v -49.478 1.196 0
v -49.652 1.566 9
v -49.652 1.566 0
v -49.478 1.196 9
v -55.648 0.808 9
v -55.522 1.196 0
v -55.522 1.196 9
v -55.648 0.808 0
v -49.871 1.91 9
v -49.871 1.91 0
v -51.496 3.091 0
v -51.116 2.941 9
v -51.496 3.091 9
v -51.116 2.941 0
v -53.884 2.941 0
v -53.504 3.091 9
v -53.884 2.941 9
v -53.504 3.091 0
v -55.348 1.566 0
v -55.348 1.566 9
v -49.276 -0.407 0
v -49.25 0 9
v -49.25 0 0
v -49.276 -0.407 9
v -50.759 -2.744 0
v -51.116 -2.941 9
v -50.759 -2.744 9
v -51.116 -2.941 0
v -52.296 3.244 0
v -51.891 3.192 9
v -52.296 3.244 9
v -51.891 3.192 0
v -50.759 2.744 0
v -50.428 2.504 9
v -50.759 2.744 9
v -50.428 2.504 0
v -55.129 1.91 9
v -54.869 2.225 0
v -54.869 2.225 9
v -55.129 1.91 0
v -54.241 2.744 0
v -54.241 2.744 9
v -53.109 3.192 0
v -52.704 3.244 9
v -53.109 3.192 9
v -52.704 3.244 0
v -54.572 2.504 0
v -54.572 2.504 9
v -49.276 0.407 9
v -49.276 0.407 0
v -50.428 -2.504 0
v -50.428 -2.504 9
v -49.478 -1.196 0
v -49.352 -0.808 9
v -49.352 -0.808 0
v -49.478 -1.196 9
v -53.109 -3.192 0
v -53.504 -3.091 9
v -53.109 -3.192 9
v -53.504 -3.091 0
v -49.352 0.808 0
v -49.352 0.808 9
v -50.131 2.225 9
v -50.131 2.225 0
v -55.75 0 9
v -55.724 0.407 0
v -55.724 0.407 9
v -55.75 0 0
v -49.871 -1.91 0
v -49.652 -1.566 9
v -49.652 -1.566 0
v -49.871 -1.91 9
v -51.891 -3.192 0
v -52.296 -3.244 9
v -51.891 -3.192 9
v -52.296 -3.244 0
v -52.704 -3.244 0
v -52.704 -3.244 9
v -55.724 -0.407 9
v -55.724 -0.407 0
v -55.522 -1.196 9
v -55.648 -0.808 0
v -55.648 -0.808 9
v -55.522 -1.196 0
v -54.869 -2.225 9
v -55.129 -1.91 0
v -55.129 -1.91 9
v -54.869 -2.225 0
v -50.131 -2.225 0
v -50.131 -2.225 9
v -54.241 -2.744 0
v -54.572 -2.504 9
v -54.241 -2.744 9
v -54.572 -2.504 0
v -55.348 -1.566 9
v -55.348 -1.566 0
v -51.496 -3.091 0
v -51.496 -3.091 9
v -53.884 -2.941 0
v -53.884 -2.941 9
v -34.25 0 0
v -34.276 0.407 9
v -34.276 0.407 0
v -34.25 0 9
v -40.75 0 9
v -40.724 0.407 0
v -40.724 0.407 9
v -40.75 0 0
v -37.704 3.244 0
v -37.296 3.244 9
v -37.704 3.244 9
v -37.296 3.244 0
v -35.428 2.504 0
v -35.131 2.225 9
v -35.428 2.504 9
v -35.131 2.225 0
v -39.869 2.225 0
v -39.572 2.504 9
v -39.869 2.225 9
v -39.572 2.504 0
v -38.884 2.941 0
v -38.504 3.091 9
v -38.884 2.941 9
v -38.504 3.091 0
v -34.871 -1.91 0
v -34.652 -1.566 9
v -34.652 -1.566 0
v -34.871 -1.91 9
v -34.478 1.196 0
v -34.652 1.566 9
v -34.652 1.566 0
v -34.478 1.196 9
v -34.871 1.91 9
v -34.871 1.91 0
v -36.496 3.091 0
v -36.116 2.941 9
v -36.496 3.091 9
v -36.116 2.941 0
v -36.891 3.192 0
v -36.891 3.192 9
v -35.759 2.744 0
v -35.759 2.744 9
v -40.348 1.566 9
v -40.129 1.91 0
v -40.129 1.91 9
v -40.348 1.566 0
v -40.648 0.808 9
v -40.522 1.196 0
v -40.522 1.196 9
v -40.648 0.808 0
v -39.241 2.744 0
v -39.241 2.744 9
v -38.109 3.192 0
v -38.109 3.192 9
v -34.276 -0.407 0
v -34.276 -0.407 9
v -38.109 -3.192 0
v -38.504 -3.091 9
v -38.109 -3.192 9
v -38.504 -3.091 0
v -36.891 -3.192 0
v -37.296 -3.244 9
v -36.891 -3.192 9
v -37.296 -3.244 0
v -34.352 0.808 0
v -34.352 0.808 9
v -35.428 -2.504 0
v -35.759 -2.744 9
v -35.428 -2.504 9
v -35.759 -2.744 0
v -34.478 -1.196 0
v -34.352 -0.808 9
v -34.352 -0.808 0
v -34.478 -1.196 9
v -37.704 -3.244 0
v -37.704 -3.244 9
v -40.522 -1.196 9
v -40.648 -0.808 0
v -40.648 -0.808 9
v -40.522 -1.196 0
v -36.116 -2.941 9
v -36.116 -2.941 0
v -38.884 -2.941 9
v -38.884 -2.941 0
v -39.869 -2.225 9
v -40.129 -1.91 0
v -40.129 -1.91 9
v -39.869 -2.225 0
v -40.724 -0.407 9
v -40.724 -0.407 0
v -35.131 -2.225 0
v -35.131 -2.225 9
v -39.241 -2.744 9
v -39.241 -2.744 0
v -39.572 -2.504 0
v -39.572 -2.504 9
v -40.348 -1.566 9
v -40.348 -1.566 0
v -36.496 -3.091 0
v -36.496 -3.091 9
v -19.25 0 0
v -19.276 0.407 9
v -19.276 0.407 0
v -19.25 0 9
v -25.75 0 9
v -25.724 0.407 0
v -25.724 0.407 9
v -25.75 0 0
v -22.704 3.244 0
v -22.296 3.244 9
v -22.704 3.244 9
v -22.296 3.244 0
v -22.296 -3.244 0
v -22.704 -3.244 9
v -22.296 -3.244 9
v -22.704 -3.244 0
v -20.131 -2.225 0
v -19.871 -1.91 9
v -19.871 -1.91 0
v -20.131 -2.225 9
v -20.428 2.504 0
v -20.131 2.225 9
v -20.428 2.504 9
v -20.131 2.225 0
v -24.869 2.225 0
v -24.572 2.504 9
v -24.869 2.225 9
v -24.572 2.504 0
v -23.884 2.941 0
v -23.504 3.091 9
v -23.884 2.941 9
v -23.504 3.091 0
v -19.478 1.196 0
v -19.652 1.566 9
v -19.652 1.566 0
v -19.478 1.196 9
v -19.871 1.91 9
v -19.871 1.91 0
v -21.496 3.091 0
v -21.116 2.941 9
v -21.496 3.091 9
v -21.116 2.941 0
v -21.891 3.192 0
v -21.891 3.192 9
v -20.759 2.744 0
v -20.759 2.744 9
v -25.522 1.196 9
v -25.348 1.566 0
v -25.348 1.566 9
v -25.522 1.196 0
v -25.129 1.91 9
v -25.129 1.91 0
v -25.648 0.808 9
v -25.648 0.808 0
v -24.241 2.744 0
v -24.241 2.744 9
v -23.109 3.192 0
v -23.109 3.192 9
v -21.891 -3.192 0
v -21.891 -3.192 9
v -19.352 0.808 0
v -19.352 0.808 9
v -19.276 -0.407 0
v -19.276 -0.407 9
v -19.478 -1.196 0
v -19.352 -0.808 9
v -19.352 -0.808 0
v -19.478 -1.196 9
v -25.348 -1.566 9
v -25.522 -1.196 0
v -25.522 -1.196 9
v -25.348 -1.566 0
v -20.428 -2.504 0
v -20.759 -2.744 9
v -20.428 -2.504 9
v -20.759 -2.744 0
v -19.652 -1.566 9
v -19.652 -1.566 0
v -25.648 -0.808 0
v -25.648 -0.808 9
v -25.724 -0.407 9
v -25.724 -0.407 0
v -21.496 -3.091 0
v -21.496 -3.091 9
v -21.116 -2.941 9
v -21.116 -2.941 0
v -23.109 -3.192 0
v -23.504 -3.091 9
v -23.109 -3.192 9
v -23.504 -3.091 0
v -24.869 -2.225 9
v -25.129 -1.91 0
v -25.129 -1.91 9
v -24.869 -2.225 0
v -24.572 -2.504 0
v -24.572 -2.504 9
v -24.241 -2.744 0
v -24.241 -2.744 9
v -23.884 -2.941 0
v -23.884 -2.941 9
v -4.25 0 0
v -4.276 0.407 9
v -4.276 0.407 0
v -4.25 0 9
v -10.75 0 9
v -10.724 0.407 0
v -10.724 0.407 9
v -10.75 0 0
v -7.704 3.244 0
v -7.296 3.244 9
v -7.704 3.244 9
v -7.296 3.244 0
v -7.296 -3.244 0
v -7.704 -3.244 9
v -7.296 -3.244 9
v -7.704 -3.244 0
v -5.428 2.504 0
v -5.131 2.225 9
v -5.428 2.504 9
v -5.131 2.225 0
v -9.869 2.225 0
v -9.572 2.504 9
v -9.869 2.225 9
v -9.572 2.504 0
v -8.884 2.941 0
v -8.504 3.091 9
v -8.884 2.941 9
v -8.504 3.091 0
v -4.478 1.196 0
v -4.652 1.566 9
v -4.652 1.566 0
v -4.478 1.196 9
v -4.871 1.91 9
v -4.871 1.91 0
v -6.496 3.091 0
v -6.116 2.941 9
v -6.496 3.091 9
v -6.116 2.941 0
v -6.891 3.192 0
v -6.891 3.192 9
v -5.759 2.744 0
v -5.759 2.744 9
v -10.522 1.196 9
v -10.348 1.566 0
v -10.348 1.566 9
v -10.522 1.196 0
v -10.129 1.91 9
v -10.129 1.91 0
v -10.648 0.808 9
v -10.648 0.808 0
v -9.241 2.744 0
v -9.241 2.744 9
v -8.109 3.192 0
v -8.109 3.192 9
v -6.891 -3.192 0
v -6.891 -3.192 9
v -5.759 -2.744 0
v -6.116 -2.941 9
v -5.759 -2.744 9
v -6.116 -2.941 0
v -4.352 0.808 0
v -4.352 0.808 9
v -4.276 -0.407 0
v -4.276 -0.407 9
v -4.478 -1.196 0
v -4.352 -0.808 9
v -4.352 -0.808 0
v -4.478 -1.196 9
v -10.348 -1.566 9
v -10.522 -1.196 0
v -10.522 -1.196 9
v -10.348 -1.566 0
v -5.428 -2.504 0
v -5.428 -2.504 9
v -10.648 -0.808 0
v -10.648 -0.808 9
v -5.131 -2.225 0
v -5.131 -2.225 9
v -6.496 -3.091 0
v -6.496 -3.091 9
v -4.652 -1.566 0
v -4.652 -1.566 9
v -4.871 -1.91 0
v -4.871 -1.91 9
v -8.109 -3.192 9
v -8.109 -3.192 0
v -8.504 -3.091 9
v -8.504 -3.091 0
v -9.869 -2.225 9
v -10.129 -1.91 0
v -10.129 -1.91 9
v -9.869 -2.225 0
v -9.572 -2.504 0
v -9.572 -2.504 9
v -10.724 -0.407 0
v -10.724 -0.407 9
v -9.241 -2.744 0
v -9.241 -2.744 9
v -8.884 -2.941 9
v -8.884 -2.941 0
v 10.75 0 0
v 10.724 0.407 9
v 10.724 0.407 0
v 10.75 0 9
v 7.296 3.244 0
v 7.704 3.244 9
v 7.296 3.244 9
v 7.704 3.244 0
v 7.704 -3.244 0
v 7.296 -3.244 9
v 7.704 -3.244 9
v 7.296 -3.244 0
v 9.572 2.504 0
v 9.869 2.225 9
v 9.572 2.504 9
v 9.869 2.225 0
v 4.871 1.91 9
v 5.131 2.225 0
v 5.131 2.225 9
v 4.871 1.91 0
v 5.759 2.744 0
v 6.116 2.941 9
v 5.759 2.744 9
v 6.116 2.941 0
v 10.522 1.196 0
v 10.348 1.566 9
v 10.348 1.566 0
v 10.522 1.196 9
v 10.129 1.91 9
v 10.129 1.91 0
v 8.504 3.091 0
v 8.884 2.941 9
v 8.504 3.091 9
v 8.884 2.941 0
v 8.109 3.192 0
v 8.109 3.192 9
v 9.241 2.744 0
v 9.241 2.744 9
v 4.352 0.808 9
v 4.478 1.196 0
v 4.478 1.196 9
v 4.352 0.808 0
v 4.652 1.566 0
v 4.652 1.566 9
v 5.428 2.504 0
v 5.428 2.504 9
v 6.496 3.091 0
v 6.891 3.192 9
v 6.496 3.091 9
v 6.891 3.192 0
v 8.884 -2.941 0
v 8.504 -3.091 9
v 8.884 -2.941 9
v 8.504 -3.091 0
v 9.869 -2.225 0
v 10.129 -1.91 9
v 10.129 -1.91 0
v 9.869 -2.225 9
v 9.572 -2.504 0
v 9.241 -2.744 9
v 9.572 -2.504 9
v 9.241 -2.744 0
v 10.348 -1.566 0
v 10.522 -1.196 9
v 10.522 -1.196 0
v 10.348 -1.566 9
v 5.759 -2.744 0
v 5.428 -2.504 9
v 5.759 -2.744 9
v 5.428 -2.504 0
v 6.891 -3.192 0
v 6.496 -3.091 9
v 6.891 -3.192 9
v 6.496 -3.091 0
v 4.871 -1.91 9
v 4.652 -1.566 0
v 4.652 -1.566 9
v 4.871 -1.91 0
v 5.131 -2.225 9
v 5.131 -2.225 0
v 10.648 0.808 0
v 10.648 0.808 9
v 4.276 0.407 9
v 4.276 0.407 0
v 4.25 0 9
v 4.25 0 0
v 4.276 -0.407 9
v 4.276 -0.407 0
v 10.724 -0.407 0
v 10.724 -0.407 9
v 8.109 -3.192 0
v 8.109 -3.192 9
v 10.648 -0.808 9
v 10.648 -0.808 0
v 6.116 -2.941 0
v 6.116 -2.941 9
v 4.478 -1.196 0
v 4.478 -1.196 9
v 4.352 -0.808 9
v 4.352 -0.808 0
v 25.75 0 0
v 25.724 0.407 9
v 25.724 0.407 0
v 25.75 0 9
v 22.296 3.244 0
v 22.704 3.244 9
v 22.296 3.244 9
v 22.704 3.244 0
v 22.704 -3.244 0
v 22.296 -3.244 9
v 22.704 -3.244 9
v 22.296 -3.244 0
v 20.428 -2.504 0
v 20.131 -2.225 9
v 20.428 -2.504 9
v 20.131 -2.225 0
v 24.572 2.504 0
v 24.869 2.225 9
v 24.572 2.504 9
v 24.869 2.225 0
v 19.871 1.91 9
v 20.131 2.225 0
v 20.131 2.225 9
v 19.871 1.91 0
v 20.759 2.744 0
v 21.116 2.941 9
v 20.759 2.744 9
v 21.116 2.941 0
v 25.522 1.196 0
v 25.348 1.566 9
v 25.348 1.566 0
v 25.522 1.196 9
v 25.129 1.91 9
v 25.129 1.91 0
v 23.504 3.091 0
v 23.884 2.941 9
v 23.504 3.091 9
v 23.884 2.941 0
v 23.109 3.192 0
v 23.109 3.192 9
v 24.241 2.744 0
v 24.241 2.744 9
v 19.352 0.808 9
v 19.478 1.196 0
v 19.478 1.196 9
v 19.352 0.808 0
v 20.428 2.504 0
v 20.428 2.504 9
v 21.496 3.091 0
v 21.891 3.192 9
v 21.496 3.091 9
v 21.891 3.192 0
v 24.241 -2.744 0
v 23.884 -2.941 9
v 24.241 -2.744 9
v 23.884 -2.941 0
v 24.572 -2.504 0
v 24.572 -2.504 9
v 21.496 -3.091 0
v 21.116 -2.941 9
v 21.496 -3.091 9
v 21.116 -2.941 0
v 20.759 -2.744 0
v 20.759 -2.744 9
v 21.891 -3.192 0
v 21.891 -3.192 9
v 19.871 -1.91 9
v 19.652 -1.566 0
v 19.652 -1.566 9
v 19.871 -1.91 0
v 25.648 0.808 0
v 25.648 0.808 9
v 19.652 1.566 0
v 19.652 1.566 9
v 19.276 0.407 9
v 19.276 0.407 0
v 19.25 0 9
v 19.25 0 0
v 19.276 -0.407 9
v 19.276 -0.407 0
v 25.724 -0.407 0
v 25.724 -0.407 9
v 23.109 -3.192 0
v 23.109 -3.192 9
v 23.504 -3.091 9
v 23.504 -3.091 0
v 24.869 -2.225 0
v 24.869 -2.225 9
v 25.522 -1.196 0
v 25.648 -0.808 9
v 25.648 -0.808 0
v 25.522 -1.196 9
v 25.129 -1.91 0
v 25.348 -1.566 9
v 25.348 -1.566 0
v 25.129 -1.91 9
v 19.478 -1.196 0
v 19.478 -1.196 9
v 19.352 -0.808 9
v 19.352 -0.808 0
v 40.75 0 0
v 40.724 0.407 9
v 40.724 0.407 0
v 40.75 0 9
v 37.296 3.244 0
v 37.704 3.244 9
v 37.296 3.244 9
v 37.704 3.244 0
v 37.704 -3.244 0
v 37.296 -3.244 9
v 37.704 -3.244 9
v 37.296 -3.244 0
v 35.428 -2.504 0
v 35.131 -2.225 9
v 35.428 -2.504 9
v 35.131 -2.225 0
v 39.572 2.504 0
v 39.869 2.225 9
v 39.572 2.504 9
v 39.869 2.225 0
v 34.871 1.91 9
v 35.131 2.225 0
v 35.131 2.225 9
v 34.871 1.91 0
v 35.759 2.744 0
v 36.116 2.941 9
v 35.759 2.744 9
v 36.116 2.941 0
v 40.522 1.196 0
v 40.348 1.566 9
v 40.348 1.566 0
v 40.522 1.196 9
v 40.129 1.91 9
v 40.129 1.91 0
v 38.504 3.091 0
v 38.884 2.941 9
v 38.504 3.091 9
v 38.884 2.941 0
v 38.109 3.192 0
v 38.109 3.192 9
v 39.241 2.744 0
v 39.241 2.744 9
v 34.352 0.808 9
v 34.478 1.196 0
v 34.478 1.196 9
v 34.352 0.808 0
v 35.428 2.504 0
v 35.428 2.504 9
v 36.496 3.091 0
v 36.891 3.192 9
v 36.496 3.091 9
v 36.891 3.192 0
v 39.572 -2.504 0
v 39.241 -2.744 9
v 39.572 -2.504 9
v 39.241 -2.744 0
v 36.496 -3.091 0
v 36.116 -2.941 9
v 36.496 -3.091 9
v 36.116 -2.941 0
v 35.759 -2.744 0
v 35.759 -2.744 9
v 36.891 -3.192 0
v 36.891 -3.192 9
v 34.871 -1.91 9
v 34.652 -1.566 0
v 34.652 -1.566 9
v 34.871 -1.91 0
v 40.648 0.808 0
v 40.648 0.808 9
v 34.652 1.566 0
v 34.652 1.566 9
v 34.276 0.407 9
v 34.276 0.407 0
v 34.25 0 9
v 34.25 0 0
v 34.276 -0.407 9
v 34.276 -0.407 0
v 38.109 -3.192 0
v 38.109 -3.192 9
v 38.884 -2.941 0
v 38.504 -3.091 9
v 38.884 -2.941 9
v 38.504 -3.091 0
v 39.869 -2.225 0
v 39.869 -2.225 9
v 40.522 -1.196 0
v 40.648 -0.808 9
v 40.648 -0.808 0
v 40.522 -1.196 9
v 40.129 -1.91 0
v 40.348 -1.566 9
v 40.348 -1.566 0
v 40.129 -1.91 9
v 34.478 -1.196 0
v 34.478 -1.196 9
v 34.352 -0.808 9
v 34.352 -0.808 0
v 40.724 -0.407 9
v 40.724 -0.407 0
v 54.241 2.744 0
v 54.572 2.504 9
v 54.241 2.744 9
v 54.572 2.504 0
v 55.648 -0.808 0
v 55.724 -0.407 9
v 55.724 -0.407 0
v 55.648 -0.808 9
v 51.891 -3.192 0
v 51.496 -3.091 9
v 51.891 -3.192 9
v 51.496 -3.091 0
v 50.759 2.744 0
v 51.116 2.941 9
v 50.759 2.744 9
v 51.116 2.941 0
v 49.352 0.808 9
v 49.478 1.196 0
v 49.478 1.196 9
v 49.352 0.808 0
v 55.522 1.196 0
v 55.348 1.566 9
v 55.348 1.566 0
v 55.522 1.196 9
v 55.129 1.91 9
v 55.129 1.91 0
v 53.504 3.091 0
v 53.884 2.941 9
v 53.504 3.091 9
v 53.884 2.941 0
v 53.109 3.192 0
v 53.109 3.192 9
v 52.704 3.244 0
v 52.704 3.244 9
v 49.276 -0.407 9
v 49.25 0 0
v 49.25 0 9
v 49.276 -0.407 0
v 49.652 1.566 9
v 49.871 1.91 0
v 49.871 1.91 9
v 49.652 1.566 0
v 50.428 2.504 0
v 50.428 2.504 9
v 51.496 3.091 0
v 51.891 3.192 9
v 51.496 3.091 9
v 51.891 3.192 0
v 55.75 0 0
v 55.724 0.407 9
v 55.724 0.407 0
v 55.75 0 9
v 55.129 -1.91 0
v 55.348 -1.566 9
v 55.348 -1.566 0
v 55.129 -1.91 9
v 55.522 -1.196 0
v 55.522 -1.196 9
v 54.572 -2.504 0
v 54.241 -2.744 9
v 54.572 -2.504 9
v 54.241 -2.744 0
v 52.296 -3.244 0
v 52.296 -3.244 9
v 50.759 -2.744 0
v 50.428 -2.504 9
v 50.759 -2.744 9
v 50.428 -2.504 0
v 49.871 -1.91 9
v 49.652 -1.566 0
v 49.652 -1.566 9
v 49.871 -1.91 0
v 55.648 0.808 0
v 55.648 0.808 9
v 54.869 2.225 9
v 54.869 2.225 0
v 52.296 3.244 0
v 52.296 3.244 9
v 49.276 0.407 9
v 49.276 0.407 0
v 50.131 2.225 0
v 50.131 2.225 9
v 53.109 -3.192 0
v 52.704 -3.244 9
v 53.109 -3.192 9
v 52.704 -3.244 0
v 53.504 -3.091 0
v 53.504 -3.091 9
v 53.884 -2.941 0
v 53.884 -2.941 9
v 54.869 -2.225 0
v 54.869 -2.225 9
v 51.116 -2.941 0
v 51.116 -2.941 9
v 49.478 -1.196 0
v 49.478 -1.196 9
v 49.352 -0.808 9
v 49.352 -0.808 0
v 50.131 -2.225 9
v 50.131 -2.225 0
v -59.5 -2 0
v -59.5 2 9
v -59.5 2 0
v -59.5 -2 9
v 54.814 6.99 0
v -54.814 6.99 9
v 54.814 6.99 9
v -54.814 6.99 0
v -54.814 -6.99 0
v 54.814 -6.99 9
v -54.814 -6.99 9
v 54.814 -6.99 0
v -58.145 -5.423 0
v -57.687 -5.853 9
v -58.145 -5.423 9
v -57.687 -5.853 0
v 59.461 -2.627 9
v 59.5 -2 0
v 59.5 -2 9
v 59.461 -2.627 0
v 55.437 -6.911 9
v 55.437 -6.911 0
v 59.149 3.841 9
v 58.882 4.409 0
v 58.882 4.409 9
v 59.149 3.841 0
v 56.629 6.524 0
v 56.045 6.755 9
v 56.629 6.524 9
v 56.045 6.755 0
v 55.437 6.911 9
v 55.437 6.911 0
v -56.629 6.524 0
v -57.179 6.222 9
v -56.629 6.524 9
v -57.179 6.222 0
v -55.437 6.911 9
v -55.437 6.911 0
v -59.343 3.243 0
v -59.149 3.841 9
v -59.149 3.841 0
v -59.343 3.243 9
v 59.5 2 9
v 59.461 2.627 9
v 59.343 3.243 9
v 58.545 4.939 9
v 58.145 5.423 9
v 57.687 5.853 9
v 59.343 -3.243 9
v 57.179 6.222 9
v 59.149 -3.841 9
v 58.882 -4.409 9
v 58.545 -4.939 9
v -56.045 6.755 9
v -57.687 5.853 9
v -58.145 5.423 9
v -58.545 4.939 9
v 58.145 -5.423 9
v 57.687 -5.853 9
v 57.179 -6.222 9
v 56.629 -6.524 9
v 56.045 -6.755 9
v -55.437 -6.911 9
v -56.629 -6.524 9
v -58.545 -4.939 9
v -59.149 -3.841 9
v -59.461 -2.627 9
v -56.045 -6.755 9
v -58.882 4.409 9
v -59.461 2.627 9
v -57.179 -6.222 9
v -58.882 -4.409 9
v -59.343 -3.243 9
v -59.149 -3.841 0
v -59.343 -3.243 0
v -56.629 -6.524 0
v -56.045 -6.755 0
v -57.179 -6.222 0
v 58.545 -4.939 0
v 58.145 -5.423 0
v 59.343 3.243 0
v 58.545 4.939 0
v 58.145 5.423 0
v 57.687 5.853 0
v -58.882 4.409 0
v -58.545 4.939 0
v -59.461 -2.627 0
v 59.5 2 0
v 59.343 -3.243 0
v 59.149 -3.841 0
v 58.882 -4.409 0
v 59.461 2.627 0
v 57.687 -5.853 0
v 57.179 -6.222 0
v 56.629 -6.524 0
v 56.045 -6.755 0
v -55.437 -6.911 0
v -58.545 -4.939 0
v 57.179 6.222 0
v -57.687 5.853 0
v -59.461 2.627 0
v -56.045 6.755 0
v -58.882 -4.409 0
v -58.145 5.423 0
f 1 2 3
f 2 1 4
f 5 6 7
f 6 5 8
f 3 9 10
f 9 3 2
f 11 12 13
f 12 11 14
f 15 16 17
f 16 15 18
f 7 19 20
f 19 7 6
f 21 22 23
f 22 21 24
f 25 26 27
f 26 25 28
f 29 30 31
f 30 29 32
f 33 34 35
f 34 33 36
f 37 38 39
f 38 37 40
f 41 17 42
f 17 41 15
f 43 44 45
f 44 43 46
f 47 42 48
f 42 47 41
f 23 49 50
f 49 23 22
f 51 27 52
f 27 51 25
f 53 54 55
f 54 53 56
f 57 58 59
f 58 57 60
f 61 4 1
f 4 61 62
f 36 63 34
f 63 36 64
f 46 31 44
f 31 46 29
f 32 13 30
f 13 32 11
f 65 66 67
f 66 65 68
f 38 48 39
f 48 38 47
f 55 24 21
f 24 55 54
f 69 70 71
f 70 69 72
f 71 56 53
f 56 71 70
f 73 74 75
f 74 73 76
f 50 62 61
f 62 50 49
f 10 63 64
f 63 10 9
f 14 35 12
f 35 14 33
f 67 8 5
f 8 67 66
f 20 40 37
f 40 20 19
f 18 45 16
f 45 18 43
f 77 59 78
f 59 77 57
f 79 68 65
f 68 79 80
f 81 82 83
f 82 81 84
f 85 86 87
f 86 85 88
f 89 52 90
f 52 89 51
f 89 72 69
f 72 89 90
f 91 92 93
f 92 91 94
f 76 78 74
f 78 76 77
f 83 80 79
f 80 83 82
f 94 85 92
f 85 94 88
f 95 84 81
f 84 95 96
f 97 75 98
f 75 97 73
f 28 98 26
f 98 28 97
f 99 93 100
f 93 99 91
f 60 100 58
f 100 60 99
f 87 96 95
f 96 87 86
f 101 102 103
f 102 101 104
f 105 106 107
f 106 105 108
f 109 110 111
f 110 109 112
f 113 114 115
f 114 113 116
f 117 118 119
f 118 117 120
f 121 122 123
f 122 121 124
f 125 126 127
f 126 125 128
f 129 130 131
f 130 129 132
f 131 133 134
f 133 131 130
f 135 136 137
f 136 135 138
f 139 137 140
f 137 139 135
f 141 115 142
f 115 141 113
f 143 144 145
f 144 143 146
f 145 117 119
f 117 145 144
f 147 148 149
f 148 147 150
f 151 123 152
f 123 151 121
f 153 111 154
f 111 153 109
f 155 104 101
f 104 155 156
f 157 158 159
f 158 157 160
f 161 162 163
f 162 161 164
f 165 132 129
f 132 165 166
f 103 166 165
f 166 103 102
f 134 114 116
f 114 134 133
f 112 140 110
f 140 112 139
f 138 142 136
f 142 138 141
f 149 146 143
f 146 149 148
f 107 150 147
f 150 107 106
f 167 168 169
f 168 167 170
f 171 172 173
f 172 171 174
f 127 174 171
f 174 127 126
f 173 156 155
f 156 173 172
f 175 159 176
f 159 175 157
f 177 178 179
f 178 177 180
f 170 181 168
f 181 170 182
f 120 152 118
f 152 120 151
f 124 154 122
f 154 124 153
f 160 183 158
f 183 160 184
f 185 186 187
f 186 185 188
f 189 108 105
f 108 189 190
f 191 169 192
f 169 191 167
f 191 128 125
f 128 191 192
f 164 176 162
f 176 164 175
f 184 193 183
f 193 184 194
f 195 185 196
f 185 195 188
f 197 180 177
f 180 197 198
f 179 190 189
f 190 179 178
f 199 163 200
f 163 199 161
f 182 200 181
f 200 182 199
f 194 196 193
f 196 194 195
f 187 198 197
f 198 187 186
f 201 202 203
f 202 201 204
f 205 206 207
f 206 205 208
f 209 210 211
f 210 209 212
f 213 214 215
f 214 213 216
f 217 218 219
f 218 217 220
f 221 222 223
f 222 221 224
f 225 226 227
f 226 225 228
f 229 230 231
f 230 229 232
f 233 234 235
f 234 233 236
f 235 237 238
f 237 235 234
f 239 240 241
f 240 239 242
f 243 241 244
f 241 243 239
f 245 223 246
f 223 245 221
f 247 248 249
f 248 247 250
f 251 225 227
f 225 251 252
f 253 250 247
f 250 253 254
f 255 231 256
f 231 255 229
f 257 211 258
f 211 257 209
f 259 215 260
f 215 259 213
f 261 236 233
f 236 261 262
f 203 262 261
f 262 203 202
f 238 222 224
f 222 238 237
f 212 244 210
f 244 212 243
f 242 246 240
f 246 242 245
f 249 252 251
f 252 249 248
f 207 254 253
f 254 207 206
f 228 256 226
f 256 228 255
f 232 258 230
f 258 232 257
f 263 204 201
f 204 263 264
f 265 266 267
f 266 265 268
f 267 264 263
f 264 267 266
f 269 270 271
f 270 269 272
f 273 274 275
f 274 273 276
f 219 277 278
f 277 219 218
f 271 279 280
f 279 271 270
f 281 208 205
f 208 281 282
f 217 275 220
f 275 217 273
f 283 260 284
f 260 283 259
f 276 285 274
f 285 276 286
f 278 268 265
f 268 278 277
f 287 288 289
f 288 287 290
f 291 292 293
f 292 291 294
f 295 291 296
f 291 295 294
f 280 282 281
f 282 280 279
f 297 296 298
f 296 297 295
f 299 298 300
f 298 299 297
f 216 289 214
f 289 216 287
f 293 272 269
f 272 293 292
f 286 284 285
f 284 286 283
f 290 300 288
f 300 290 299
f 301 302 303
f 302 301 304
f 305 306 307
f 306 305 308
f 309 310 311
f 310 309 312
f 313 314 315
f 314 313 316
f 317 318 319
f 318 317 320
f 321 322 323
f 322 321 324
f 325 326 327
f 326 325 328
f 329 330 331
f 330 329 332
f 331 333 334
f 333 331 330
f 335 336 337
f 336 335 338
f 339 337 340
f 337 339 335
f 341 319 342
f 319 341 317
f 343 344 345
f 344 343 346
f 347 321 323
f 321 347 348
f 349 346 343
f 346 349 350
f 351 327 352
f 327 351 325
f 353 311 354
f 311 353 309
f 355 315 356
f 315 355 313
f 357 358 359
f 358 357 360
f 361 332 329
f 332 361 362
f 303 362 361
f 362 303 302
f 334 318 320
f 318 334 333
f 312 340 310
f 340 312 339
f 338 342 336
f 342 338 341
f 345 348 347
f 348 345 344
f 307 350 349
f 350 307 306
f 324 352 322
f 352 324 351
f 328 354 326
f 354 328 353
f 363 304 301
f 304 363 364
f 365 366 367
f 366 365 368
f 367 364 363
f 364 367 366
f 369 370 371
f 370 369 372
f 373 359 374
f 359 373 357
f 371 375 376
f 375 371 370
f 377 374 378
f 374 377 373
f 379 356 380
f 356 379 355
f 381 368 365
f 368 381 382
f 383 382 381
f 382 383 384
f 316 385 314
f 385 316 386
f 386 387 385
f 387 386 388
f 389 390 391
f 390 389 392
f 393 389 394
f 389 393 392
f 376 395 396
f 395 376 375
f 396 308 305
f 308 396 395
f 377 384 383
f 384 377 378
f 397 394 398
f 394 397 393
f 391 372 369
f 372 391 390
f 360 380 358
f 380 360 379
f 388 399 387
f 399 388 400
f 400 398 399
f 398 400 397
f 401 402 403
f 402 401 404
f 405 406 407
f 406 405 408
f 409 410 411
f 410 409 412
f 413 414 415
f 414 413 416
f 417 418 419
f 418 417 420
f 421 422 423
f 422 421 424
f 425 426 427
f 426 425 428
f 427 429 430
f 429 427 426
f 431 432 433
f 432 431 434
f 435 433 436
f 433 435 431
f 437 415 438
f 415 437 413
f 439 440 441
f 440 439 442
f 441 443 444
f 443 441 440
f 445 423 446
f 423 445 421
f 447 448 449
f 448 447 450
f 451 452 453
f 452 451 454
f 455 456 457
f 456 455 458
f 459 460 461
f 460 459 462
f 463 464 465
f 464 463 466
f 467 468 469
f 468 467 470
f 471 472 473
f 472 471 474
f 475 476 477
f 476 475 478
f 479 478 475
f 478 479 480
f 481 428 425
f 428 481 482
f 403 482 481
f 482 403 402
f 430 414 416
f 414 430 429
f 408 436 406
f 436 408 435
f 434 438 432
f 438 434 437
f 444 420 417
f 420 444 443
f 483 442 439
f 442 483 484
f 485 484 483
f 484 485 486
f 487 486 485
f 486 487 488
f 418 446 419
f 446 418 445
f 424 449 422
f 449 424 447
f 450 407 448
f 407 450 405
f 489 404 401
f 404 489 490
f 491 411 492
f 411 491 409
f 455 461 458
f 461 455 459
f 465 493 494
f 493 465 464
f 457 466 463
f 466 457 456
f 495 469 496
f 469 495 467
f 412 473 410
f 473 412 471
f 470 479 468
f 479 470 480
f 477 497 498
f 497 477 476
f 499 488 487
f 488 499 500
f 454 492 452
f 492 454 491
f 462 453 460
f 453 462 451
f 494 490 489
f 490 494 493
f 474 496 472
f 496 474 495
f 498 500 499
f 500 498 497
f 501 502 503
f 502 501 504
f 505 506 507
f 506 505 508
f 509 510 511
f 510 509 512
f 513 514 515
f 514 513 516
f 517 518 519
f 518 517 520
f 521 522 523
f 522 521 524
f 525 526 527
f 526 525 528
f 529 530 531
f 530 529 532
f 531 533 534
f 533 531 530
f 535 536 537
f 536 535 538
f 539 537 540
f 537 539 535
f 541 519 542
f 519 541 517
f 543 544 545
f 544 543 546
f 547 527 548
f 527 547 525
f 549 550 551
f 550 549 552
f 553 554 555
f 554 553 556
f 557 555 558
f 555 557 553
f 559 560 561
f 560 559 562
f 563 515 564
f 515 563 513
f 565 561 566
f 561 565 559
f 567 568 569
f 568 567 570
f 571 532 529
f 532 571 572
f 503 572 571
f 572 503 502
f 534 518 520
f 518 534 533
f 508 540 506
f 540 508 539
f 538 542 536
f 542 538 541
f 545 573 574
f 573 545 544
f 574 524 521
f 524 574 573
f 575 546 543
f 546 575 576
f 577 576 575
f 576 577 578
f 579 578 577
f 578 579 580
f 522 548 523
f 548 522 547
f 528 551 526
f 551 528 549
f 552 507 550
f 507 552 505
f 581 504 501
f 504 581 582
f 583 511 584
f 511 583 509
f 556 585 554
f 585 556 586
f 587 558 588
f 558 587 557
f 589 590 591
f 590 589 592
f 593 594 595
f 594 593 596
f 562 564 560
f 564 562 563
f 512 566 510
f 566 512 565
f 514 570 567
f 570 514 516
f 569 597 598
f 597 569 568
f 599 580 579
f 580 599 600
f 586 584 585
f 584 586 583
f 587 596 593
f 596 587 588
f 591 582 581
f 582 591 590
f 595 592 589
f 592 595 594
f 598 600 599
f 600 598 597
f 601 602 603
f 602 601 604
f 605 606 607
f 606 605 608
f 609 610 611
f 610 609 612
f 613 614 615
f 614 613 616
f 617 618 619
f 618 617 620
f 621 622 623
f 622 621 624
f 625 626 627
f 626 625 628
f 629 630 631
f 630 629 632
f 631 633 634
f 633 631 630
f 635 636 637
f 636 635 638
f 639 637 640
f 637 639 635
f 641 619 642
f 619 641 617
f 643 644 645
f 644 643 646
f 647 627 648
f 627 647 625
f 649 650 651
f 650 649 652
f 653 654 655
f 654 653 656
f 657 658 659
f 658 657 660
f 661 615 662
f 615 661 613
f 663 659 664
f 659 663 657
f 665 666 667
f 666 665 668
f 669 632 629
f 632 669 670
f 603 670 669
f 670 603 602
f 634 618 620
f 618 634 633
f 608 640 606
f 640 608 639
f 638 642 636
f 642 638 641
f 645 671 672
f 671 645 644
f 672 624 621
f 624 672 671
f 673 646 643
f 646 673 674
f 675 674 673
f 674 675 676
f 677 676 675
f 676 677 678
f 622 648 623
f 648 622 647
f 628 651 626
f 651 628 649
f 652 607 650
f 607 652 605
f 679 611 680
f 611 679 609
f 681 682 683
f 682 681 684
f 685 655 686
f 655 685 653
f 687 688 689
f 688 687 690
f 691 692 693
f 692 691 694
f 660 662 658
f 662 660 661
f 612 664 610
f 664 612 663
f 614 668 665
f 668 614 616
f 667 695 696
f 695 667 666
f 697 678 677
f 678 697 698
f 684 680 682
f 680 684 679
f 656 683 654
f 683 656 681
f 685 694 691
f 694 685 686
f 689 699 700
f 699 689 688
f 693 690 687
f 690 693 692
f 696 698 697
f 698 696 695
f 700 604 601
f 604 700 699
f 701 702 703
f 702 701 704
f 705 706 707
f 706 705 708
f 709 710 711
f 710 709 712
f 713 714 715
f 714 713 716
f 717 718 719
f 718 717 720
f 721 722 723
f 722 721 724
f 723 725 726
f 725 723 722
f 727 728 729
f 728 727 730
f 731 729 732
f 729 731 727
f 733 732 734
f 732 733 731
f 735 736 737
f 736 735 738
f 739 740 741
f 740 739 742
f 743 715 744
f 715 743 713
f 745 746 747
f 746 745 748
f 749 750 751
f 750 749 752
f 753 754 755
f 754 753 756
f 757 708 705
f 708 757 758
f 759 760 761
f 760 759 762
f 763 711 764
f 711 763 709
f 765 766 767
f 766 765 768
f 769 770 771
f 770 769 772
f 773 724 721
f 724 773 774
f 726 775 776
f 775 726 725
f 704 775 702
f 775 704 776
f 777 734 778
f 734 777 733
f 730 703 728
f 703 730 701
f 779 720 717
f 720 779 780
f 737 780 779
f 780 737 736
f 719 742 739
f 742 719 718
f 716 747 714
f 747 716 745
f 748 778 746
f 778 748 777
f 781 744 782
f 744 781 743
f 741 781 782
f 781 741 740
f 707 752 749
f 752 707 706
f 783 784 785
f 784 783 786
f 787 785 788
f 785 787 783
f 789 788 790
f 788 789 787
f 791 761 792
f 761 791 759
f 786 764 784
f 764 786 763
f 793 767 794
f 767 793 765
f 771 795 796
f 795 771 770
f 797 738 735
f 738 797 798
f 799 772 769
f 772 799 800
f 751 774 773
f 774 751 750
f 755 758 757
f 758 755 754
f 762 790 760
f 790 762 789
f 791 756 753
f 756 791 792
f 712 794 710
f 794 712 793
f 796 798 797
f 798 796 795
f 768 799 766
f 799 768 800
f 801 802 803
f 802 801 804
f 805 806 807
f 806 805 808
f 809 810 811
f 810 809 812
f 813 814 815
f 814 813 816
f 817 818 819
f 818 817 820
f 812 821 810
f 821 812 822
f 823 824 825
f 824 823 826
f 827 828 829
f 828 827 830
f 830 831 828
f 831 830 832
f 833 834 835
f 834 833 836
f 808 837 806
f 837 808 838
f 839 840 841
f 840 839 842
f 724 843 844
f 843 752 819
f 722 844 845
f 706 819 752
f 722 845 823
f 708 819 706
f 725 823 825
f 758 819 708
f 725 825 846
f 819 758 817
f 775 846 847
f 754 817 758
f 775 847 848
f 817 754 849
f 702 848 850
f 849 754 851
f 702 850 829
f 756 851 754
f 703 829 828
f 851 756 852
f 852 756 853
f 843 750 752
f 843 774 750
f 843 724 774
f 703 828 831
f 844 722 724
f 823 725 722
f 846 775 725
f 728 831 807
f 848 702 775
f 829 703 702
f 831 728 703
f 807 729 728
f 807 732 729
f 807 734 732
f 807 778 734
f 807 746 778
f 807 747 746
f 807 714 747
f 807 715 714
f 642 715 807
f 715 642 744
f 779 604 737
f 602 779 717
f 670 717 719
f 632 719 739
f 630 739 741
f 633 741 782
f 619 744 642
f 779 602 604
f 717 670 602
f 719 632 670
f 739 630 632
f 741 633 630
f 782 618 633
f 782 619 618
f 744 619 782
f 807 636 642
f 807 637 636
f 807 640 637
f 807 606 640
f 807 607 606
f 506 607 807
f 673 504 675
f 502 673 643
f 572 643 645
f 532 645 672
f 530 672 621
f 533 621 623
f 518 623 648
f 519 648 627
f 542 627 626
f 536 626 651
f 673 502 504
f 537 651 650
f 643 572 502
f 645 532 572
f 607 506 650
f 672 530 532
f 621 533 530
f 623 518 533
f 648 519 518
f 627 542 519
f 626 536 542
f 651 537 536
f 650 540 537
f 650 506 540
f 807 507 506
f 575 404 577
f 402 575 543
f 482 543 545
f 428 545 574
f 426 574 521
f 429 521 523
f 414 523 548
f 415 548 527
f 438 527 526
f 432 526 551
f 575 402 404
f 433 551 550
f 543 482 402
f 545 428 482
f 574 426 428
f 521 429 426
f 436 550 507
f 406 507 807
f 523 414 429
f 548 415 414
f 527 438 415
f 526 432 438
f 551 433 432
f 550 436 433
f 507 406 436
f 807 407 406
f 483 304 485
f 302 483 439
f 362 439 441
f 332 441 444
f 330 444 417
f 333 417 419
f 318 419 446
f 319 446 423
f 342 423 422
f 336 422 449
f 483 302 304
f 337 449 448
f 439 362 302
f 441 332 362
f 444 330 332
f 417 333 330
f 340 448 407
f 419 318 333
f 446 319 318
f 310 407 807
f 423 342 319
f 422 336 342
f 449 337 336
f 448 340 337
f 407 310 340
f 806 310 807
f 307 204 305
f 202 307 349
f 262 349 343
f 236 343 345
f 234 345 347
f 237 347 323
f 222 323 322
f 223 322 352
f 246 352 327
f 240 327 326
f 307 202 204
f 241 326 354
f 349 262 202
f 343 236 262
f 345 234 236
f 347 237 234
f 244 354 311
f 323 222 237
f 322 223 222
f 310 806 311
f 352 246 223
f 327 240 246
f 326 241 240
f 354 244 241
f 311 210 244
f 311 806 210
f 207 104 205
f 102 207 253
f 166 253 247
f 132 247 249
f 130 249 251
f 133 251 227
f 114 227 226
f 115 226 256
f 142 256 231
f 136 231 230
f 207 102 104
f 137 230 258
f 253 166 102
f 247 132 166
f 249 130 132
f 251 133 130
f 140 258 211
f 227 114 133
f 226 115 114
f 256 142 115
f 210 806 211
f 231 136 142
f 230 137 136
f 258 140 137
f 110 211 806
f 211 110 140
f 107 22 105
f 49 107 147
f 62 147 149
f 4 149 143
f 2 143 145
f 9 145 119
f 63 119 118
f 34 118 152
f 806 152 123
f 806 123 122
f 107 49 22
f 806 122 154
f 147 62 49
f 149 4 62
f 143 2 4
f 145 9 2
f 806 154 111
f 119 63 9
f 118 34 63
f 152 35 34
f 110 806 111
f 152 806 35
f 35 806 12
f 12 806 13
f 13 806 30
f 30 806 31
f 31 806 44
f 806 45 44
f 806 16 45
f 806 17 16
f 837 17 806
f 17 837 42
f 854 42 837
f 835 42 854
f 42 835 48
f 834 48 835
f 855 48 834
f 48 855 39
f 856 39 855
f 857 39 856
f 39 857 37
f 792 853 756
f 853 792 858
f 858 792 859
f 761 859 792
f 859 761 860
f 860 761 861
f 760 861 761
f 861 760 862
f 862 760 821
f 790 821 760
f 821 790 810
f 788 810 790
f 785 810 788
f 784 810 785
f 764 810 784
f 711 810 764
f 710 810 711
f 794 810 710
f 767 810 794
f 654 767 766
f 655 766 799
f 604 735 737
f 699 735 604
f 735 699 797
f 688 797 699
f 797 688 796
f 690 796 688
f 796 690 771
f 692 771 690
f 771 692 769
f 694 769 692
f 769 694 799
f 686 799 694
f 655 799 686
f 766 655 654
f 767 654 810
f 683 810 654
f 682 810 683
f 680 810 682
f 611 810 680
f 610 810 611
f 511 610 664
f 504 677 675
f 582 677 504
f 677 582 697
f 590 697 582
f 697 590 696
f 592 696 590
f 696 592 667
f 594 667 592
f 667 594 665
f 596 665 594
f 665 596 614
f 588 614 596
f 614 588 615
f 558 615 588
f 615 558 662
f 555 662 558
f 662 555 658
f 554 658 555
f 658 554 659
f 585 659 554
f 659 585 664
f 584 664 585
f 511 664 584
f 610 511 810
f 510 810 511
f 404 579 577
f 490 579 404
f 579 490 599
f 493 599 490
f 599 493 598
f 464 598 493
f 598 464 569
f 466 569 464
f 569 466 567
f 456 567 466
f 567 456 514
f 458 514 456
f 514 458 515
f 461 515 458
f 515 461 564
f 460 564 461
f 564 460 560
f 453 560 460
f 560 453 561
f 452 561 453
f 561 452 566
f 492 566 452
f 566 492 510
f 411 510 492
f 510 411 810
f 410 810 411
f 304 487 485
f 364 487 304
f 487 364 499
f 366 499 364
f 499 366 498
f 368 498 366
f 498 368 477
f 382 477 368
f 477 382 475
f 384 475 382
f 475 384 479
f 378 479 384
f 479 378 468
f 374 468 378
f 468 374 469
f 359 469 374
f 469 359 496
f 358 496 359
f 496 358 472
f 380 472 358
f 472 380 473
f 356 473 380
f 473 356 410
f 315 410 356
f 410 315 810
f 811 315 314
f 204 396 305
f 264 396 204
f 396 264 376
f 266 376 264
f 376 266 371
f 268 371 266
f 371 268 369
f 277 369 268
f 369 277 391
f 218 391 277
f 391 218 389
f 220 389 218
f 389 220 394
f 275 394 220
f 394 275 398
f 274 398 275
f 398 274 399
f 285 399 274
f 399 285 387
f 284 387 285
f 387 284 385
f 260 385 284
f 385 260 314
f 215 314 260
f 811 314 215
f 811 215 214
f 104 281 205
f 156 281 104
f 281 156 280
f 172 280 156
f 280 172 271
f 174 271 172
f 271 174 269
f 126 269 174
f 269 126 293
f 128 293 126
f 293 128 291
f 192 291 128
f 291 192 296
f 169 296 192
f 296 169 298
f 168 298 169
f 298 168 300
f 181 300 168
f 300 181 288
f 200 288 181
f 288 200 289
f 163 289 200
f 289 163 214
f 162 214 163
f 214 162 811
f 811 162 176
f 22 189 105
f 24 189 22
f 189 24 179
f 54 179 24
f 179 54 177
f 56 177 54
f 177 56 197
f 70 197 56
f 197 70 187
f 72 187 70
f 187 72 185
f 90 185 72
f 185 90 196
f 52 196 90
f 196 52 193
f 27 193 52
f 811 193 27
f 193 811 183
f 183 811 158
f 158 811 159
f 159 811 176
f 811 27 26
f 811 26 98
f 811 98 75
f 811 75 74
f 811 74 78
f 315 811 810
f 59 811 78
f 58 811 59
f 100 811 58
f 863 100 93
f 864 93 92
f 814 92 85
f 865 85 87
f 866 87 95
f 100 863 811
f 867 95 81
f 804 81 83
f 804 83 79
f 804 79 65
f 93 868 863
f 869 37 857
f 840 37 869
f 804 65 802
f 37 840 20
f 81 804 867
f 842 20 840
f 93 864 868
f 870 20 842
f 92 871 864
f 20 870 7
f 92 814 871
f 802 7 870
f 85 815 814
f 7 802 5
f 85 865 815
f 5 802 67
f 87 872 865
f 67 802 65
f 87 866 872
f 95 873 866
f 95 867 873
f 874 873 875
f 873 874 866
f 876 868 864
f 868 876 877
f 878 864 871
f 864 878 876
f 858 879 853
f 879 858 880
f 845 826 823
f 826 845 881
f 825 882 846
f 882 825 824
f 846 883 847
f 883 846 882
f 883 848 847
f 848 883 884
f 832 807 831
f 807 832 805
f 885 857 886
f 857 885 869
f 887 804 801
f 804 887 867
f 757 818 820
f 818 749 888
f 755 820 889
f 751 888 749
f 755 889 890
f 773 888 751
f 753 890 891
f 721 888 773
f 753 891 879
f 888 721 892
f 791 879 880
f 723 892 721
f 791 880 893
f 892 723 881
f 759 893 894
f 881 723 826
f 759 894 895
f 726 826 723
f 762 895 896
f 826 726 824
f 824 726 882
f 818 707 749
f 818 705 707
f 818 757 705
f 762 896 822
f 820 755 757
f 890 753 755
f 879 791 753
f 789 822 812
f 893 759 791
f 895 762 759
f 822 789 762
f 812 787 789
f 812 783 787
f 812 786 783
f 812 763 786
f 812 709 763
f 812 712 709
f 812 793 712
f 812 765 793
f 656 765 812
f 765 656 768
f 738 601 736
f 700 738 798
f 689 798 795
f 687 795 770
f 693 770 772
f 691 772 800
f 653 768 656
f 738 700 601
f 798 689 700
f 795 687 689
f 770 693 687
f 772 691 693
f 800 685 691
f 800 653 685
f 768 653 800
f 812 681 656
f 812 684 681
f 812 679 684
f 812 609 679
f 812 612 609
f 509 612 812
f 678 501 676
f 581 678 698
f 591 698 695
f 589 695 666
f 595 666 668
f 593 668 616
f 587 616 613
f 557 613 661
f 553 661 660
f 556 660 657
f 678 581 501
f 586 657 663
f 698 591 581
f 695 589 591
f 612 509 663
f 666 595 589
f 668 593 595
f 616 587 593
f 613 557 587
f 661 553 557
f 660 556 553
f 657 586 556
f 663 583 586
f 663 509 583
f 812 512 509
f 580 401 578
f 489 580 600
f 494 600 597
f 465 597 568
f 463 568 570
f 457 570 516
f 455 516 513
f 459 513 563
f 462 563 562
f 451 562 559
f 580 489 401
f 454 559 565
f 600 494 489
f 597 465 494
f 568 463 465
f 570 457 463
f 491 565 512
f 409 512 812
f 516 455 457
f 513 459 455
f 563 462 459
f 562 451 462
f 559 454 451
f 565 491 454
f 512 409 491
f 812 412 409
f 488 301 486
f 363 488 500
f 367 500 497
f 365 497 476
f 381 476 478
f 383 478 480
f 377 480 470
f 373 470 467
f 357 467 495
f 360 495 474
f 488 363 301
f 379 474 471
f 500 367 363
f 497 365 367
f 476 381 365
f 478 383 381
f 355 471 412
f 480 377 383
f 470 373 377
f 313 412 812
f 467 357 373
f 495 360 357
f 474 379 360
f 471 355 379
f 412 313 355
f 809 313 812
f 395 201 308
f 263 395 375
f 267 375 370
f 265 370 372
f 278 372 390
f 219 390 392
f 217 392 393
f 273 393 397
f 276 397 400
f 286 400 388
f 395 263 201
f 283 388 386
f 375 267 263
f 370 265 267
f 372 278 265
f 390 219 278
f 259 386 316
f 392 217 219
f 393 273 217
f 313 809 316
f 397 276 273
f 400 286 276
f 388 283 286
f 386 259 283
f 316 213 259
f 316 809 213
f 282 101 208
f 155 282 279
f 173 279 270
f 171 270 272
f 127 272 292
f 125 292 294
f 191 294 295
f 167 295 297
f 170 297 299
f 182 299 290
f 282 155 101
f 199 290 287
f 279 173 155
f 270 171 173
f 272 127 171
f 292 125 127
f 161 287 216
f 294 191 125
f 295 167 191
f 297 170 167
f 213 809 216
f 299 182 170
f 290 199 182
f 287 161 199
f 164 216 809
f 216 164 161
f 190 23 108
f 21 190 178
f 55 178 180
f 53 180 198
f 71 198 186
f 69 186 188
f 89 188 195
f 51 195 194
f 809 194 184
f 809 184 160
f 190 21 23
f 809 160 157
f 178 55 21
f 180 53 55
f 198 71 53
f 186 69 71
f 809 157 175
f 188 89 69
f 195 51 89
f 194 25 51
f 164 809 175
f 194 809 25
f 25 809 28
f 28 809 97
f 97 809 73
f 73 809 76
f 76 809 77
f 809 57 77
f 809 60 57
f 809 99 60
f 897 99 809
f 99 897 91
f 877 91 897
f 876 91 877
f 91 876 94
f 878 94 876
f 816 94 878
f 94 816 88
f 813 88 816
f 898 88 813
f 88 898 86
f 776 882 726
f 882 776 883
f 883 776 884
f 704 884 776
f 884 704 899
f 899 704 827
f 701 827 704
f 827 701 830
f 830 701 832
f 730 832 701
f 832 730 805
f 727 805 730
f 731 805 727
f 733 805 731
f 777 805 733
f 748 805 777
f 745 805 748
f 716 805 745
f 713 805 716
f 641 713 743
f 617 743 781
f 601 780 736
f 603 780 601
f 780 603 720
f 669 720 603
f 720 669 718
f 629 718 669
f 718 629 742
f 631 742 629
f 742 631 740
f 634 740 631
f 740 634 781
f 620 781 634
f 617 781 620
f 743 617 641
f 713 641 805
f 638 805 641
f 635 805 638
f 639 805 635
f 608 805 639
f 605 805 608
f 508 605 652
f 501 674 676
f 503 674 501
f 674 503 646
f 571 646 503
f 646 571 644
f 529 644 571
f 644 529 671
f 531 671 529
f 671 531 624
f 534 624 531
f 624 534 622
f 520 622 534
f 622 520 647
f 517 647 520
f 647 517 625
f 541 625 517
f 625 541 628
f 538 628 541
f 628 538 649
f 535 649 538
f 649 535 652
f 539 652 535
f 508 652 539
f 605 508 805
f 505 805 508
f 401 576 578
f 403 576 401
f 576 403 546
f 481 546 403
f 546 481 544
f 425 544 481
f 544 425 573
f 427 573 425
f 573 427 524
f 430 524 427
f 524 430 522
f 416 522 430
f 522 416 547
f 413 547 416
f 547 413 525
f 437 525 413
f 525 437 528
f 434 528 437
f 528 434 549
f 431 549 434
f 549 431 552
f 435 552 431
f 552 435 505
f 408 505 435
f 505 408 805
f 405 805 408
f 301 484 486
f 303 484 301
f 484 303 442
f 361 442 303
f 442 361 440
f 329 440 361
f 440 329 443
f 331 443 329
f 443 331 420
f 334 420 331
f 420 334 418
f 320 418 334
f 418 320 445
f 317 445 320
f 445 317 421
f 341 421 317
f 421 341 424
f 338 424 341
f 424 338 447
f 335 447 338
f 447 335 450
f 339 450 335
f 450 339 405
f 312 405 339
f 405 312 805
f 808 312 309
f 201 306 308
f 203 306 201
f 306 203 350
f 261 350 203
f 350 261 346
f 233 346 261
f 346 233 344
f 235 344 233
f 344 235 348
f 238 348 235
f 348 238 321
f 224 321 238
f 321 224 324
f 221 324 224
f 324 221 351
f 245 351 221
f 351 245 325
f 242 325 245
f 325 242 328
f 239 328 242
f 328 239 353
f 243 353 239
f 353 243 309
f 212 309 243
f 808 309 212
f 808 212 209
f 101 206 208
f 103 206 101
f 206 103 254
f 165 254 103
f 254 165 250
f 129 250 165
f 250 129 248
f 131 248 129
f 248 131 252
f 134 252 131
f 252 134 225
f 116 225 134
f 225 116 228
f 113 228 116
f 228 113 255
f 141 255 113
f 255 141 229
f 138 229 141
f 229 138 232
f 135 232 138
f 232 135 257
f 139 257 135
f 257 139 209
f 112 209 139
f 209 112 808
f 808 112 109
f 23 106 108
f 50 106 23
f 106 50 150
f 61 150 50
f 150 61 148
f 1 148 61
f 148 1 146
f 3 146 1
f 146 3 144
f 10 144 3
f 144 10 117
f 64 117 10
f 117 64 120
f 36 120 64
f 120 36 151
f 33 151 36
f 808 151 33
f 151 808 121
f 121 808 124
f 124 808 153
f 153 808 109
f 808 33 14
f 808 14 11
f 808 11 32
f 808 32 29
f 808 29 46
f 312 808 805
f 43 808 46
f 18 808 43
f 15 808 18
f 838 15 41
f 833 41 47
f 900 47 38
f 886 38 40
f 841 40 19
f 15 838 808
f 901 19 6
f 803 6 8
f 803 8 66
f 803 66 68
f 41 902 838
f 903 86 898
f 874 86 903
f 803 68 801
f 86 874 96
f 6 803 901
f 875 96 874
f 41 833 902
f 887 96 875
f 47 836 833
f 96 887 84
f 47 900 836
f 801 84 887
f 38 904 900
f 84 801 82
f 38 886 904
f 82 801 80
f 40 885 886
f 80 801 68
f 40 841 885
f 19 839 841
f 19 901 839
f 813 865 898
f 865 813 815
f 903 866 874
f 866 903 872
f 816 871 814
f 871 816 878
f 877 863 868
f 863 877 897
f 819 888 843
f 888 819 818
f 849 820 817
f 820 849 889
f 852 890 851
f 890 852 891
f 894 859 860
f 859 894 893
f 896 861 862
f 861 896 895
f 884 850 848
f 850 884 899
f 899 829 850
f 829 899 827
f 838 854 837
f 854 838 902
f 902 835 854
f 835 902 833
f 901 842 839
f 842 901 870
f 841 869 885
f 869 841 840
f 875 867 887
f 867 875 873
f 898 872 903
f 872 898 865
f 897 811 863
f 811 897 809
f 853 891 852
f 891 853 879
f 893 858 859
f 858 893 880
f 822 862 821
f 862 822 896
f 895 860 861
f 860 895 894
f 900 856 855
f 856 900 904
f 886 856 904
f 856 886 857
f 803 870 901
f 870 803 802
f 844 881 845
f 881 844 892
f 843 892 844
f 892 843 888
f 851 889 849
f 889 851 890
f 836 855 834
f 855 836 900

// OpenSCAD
$fn = 50;


difference() {
	union() {
		hull() {
			translate(v = [-54.5000000000, 2.0000000000, 0]) {
				cylinder(h = 9, r = 5);
			}
			translate(v = [54.5000000000, 2.0000000000, 0]) {
				cylinder(h = 9, r = 5);
			}
			translate(v = [-54.5000000000, -2.0000000000, 0]) {
				cylinder(h = 9, r = 5);
			}
			translate(v = [54.5000000000, -2.0000000000, 0]) {
				cylinder(h = 9, r = 5);
			}
		}
	}
	union() {
		translate(v = [-52.5000000000, 0.0000000000, -100.0000000000]) {
			cylinder(h = 200, r = 3.2500000000);
		}
		translate(v = [-37.5000000000, 0.0000000000, -100.0000000000]) {
			cylinder(h = 200, r = 3.2500000000);
		}
		translate(v = [-22.5000000000, 0.0000000000, -100.0000000000]) {
			cylinder(h = 200, r = 3.2500000000);
		}
		translate(v = [-7.5000000000, 0.0000000000, -100.0000000000]) {
			cylinder(h = 200, r = 3.2500000000);
		}
		translate(v = [7.5000000000, 0.0000000000, -100.0000000000]) {
			cylinder(h = 200, r = 3.2500000000);
		}
		translate(v = [22.5000000000, 0.0000000000, -100.0000000000]) {
			cylinder(h = 200, r = 3.2500000000);
		}
		translate(v = [37.5000000000, 0.0000000000, -100.0000000000]) {
			cylinder(h = 200, r = 3.2500000000);
		}
		translate(v = [52.5000000000, 0.0000000000, -100.0000000000]) {
			cylinder(h = 200, r = 3.2500000000);
		}
	}
}
